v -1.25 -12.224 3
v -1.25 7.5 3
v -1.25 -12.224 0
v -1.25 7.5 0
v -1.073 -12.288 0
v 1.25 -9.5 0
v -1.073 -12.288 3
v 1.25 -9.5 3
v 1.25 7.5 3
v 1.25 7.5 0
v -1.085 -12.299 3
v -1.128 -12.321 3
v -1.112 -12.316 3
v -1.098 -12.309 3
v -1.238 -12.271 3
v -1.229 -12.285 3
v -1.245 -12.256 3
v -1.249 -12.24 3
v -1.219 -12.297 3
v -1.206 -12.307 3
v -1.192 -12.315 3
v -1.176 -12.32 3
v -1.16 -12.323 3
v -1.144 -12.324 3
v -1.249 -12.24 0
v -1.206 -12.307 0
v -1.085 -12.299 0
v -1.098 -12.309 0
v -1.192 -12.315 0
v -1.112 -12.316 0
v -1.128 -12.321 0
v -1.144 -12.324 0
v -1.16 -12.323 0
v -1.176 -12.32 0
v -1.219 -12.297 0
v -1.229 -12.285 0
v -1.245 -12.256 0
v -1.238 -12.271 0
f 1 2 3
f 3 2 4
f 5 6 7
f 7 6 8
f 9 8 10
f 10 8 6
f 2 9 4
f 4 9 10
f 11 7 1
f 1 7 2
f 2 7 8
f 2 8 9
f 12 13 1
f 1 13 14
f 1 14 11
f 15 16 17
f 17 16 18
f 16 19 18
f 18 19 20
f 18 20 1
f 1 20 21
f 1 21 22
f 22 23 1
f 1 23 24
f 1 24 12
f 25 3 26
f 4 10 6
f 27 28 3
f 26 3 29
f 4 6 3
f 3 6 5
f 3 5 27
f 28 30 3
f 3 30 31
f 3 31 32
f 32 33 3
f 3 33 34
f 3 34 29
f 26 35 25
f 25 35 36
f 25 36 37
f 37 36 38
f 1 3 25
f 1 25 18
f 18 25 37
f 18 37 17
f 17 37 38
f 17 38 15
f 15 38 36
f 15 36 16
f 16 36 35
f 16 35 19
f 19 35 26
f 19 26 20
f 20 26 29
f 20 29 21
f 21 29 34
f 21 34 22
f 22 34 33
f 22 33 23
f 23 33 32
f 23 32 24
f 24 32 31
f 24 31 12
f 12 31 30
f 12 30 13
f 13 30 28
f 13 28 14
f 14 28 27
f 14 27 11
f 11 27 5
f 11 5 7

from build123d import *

# Parameters (mm, degrees)
BOSS_EXTRUDE1_DEPTH = 3
FILLET2_R           = 0.1


with BuildPart() as part:
    # Sketch1 → Boss-Extrude1 (new body)
    with BuildSketch(Plane.XY):
        Polygon((-1.25, -12.5), (1.25, -9.5), (1.25, 7.5), (-1.25, 7.5), align=None)
    extrude(amount=BOSS_EXTRUDE1_DEPTH)

    # Fillet2
    fillet2_edges = [part.edges().sort_by_distance(p)[0] for p in [
        (-1.25, -12.5, 1.5),
    ]]
    fillet(fillet2_edges, radius=FILLET2_R)


solid = part.part
